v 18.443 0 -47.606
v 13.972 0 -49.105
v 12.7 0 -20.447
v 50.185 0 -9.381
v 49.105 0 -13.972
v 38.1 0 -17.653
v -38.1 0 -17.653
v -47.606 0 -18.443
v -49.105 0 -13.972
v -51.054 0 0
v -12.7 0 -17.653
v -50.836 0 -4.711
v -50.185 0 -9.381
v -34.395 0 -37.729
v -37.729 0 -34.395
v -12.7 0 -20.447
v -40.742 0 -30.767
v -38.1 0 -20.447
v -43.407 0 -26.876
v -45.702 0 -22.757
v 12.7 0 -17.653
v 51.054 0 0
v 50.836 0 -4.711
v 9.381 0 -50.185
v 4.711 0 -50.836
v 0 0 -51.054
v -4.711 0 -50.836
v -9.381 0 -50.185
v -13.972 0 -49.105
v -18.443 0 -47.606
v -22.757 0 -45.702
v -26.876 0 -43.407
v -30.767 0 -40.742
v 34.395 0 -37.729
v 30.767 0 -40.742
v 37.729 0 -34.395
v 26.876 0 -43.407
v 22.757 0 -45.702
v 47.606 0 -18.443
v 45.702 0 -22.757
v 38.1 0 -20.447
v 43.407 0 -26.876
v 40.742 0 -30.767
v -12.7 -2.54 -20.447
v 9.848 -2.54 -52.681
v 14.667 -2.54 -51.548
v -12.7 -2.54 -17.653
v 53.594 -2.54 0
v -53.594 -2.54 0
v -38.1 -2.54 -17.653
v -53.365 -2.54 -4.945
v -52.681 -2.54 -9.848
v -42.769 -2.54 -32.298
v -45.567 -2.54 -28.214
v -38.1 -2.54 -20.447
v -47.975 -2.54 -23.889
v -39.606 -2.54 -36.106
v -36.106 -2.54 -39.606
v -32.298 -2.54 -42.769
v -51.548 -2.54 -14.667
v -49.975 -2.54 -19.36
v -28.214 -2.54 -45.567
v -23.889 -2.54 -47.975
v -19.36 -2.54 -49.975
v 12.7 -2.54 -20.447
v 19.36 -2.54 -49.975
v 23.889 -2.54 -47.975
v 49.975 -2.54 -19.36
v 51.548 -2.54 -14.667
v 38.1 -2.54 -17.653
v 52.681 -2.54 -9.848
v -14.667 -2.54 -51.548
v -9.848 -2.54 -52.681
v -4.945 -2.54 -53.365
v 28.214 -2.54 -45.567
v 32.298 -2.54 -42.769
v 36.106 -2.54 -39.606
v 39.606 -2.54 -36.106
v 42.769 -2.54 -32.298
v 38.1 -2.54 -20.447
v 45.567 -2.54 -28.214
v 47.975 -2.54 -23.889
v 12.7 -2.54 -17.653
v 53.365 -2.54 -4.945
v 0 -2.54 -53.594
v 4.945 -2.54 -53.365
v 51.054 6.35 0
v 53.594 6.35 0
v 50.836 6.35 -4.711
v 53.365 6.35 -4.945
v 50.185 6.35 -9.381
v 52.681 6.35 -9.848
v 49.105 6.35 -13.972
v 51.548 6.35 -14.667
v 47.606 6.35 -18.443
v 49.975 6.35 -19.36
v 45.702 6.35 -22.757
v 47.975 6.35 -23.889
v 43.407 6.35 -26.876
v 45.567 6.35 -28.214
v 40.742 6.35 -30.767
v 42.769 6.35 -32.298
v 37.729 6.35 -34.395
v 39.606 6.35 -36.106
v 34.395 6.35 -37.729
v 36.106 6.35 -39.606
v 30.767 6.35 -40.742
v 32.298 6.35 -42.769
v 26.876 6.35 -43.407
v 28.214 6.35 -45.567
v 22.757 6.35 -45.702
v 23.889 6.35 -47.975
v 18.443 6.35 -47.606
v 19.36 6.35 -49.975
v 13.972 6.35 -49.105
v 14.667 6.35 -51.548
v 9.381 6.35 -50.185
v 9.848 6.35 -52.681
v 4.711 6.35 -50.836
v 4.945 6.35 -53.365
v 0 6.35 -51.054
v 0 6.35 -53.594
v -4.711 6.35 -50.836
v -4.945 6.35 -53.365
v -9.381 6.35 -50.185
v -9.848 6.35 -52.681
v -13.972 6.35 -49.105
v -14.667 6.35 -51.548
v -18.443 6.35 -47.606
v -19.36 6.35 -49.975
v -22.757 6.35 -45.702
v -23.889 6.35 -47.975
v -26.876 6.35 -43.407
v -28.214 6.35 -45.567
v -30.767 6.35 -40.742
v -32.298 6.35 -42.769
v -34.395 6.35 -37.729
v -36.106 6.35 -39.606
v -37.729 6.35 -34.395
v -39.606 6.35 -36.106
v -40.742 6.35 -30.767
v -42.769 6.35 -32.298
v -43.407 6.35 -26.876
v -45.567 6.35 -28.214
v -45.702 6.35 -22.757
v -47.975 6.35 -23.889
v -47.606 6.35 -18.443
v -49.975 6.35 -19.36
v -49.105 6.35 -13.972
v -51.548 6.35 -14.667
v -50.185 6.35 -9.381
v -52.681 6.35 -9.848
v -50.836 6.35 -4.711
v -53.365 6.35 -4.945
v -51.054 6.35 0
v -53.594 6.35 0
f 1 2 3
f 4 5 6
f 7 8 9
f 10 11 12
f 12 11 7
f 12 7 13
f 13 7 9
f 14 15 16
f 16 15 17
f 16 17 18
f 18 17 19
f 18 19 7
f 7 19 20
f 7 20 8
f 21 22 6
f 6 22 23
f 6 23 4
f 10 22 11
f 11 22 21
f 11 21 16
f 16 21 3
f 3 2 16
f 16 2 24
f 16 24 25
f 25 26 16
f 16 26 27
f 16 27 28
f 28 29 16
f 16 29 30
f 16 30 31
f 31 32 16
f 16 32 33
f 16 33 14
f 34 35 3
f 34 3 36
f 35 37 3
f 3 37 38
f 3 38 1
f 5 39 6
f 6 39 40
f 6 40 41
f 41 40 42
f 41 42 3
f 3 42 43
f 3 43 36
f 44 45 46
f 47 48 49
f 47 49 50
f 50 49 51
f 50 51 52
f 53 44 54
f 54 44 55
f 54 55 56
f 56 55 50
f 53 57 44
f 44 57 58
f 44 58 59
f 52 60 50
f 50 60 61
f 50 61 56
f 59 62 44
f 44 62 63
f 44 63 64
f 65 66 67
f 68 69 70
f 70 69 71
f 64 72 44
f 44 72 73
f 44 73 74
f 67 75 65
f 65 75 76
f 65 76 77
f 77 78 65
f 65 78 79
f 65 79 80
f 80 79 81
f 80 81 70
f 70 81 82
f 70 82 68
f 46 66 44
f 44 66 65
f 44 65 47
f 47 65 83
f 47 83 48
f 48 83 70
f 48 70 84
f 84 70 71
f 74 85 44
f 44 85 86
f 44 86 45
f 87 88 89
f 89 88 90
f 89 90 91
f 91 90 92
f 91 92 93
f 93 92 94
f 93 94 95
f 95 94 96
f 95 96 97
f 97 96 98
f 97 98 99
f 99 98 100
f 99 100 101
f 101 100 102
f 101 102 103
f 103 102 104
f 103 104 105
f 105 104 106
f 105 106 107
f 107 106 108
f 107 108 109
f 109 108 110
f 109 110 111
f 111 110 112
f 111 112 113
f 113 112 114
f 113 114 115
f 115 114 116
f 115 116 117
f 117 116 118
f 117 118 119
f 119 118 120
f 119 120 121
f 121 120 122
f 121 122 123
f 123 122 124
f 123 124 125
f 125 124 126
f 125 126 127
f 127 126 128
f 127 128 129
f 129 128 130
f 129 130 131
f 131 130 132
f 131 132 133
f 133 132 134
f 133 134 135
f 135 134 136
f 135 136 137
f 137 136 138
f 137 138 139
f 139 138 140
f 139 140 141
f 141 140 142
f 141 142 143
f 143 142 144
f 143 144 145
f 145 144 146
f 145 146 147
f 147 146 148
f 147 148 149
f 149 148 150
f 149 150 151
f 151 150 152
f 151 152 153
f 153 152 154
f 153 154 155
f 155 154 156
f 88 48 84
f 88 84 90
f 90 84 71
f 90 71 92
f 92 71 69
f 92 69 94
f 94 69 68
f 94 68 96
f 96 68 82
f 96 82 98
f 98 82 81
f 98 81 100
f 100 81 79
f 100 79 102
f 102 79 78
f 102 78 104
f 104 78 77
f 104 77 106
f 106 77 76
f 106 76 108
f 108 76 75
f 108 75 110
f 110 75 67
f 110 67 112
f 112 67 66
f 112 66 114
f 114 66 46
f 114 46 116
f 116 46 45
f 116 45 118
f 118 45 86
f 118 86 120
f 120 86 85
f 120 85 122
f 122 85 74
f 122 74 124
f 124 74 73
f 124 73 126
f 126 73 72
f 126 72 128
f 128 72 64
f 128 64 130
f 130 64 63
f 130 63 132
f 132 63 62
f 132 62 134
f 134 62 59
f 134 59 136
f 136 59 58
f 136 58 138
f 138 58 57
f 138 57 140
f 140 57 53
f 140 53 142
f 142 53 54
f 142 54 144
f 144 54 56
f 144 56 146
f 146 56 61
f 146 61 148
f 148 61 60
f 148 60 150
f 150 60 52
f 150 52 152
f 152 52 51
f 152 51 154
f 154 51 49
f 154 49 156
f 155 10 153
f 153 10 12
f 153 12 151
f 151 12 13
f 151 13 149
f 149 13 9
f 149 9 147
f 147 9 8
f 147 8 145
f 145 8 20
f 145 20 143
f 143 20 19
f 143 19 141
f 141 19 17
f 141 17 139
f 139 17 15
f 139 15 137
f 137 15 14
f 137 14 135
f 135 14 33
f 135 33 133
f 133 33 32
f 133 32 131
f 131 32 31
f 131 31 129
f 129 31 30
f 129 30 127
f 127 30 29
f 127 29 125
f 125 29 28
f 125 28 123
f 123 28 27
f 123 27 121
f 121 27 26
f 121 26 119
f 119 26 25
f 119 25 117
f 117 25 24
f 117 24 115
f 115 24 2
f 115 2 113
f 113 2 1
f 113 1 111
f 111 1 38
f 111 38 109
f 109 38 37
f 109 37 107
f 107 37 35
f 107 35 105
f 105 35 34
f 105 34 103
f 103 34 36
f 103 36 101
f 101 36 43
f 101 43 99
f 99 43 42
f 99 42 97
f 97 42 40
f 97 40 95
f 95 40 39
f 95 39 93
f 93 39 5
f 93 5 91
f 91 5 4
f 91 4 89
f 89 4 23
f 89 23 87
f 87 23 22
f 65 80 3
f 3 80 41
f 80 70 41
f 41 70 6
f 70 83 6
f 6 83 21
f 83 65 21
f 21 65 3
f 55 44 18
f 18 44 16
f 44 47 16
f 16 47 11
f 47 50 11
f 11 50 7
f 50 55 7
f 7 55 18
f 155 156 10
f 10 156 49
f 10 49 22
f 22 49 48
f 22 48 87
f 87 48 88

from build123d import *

# Parameters (mm, degrees)
SKETCH1_R           = 53.594
SKETCH1_R_2         = 51.054
BOSS_EXTRUDE2_DEPTH = 6.35
BOSS_EXTRUDE3_START = 2.54
SKETCH2_R           = 53.594
BOSS_EXTRUDE3_DEPTH = 2.54
SKETCH4_W           = 25.4
SKETCH4_H           = 2.794
CUT_EXTRUDE1_DEPTH  = 77.058899361
CUT_EXTRUDE2_DEPTH  = 77.312946294


with BuildPart() as part:
    # Sketch1 → Boss-Extrude2 (new body)
    with BuildSketch(Plane(origin=(0, 0, 0), x_dir=(1, 0, 0), z_dir=(0, 1, 0))):
        with Locations(Location((0, 0, 0), (0, 0, 270))):
            Circle(SKETCH1_R)
        with Locations(Location((0, 0, 0), (0, 0, 270))):
            Circle(SKETCH1_R_2, mode=Mode.SUBTRACT)
    extrude(amount=BOSS_EXTRUDE2_DEPTH)

    # Sketch2 → Boss-Extrude3 (add)
    with BuildSketch(Plane.XZ.offset(BOSS_EXTRUDE3_START)):
        with Locations(Location((0, 0, 0), (0, 0, 270))):
            Circle(SKETCH2_R)
    extrude(amount=-BOSS_EXTRUDE3_DEPTH)

    # Sketch4 → Cut-Extrude1 (cut, through all)
    with BuildSketch(Plane(origin=(0, 0, 0), x_dir=(1, 0, 0), z_dir=(0, 1, 0))):
        with Locations((-25.4, 19.05)):
            Rectangle(SKETCH4_W, SKETCH4_H)
        with Locations((25.4, 19.05)):
            Rectangle(SKETCH4_W, SKETCH4_H)
    extrude(amount=-CUT_EXTRUDE1_DEPTH, mode=Mode.SUBTRACT)

    # Sketch5 → Cut-Extrude2 (cut, through all)
    with BuildSketch(Plane.XZ.offset(2.54)):
        Polygon((-349.002283825, 0), (-69.85, 0), (69.85, 0), (349.002283825, 0), (349.002283825, 558.304567649), (-349.002283825, 558.304567649), align=None)
    extrude(amount=-CUT_EXTRUDE2_DEPTH, mode=Mode.SUBTRACT)


solid = part.part
